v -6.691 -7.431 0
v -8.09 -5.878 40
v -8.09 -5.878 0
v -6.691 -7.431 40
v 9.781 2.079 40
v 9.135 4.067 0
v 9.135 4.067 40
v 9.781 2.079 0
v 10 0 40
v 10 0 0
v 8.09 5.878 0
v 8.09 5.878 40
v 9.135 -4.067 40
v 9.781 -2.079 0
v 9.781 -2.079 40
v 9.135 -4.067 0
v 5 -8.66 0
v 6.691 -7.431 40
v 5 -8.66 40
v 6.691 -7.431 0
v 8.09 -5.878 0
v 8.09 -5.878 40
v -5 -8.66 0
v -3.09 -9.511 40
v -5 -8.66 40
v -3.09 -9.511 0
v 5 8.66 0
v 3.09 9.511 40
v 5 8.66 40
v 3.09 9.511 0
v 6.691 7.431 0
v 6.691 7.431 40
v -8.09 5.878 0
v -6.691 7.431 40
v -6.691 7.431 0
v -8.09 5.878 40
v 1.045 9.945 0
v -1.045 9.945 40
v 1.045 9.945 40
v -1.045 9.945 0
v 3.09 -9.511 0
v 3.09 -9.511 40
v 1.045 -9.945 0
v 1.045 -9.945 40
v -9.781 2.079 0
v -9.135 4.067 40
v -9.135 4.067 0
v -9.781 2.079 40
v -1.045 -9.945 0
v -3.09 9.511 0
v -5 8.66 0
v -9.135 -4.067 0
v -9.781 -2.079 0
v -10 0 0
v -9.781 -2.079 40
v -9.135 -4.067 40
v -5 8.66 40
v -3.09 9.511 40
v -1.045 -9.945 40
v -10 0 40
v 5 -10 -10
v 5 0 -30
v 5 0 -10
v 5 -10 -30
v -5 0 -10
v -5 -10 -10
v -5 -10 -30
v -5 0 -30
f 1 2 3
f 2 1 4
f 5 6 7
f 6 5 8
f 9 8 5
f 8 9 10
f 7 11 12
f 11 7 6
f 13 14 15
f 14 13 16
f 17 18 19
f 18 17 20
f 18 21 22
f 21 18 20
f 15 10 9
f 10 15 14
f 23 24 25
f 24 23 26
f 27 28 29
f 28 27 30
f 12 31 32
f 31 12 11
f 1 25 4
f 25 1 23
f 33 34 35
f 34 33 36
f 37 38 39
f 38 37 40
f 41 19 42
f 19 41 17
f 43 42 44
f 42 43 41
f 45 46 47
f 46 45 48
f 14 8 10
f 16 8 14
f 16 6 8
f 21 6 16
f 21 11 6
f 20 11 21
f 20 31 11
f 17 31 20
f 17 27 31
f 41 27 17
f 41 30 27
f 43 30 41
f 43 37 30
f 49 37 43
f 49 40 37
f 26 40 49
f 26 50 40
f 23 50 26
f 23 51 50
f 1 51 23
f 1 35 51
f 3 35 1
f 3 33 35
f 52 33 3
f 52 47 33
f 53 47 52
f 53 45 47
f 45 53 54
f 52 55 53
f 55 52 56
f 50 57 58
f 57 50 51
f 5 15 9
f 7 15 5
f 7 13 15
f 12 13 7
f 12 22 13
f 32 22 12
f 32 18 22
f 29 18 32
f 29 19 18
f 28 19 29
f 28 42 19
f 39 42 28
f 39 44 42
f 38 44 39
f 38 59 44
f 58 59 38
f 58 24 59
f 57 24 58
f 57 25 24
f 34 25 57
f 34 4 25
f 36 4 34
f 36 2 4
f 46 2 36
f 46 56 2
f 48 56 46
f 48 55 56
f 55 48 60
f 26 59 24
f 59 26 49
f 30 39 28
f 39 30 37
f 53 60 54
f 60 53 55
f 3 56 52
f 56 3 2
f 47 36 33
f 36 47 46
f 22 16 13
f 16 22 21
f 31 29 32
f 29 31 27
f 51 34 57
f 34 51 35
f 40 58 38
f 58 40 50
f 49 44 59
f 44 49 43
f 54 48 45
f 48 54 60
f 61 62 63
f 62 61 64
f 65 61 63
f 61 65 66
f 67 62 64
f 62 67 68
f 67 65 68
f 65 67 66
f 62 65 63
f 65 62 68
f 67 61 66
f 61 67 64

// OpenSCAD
// Parameters for the cylindrical segment
cylinder_diameter = 20;
cylinder_height = 40;

// Parameters for the rectangular prism segment
rect_prism_width = 10;
rect_prism_depth = 10;
rect_prism_height = 20;

// Creating the cylindrical segment
module cylinder_segment() {
    cylinder(h = cylinder_height, d = cylinder_diameter, center = true);
}

// Creating the rectangular prism segment
module rectangular_prism_segment() {
    translate([0, 0, -rect_prism_height / 2])
        cube([rect_prism_width, rect_prism_depth, rect_prism_height], center = true);
}

// Assembling the components
module flexible_coupling() {
    // Layer 1: Place the cylindrical segment on top
    translate([0, 0, cylinder_height / 2])
        cylinder_segment();
    
    // Layer 2: Attach the rectangular prism segment below the cylinder
    translate([0, -rect_prism_depth / 2, -rect_prism_height / 2])
        rectangular_prism_segment();
}

// Render the model
flexible_coupling();
